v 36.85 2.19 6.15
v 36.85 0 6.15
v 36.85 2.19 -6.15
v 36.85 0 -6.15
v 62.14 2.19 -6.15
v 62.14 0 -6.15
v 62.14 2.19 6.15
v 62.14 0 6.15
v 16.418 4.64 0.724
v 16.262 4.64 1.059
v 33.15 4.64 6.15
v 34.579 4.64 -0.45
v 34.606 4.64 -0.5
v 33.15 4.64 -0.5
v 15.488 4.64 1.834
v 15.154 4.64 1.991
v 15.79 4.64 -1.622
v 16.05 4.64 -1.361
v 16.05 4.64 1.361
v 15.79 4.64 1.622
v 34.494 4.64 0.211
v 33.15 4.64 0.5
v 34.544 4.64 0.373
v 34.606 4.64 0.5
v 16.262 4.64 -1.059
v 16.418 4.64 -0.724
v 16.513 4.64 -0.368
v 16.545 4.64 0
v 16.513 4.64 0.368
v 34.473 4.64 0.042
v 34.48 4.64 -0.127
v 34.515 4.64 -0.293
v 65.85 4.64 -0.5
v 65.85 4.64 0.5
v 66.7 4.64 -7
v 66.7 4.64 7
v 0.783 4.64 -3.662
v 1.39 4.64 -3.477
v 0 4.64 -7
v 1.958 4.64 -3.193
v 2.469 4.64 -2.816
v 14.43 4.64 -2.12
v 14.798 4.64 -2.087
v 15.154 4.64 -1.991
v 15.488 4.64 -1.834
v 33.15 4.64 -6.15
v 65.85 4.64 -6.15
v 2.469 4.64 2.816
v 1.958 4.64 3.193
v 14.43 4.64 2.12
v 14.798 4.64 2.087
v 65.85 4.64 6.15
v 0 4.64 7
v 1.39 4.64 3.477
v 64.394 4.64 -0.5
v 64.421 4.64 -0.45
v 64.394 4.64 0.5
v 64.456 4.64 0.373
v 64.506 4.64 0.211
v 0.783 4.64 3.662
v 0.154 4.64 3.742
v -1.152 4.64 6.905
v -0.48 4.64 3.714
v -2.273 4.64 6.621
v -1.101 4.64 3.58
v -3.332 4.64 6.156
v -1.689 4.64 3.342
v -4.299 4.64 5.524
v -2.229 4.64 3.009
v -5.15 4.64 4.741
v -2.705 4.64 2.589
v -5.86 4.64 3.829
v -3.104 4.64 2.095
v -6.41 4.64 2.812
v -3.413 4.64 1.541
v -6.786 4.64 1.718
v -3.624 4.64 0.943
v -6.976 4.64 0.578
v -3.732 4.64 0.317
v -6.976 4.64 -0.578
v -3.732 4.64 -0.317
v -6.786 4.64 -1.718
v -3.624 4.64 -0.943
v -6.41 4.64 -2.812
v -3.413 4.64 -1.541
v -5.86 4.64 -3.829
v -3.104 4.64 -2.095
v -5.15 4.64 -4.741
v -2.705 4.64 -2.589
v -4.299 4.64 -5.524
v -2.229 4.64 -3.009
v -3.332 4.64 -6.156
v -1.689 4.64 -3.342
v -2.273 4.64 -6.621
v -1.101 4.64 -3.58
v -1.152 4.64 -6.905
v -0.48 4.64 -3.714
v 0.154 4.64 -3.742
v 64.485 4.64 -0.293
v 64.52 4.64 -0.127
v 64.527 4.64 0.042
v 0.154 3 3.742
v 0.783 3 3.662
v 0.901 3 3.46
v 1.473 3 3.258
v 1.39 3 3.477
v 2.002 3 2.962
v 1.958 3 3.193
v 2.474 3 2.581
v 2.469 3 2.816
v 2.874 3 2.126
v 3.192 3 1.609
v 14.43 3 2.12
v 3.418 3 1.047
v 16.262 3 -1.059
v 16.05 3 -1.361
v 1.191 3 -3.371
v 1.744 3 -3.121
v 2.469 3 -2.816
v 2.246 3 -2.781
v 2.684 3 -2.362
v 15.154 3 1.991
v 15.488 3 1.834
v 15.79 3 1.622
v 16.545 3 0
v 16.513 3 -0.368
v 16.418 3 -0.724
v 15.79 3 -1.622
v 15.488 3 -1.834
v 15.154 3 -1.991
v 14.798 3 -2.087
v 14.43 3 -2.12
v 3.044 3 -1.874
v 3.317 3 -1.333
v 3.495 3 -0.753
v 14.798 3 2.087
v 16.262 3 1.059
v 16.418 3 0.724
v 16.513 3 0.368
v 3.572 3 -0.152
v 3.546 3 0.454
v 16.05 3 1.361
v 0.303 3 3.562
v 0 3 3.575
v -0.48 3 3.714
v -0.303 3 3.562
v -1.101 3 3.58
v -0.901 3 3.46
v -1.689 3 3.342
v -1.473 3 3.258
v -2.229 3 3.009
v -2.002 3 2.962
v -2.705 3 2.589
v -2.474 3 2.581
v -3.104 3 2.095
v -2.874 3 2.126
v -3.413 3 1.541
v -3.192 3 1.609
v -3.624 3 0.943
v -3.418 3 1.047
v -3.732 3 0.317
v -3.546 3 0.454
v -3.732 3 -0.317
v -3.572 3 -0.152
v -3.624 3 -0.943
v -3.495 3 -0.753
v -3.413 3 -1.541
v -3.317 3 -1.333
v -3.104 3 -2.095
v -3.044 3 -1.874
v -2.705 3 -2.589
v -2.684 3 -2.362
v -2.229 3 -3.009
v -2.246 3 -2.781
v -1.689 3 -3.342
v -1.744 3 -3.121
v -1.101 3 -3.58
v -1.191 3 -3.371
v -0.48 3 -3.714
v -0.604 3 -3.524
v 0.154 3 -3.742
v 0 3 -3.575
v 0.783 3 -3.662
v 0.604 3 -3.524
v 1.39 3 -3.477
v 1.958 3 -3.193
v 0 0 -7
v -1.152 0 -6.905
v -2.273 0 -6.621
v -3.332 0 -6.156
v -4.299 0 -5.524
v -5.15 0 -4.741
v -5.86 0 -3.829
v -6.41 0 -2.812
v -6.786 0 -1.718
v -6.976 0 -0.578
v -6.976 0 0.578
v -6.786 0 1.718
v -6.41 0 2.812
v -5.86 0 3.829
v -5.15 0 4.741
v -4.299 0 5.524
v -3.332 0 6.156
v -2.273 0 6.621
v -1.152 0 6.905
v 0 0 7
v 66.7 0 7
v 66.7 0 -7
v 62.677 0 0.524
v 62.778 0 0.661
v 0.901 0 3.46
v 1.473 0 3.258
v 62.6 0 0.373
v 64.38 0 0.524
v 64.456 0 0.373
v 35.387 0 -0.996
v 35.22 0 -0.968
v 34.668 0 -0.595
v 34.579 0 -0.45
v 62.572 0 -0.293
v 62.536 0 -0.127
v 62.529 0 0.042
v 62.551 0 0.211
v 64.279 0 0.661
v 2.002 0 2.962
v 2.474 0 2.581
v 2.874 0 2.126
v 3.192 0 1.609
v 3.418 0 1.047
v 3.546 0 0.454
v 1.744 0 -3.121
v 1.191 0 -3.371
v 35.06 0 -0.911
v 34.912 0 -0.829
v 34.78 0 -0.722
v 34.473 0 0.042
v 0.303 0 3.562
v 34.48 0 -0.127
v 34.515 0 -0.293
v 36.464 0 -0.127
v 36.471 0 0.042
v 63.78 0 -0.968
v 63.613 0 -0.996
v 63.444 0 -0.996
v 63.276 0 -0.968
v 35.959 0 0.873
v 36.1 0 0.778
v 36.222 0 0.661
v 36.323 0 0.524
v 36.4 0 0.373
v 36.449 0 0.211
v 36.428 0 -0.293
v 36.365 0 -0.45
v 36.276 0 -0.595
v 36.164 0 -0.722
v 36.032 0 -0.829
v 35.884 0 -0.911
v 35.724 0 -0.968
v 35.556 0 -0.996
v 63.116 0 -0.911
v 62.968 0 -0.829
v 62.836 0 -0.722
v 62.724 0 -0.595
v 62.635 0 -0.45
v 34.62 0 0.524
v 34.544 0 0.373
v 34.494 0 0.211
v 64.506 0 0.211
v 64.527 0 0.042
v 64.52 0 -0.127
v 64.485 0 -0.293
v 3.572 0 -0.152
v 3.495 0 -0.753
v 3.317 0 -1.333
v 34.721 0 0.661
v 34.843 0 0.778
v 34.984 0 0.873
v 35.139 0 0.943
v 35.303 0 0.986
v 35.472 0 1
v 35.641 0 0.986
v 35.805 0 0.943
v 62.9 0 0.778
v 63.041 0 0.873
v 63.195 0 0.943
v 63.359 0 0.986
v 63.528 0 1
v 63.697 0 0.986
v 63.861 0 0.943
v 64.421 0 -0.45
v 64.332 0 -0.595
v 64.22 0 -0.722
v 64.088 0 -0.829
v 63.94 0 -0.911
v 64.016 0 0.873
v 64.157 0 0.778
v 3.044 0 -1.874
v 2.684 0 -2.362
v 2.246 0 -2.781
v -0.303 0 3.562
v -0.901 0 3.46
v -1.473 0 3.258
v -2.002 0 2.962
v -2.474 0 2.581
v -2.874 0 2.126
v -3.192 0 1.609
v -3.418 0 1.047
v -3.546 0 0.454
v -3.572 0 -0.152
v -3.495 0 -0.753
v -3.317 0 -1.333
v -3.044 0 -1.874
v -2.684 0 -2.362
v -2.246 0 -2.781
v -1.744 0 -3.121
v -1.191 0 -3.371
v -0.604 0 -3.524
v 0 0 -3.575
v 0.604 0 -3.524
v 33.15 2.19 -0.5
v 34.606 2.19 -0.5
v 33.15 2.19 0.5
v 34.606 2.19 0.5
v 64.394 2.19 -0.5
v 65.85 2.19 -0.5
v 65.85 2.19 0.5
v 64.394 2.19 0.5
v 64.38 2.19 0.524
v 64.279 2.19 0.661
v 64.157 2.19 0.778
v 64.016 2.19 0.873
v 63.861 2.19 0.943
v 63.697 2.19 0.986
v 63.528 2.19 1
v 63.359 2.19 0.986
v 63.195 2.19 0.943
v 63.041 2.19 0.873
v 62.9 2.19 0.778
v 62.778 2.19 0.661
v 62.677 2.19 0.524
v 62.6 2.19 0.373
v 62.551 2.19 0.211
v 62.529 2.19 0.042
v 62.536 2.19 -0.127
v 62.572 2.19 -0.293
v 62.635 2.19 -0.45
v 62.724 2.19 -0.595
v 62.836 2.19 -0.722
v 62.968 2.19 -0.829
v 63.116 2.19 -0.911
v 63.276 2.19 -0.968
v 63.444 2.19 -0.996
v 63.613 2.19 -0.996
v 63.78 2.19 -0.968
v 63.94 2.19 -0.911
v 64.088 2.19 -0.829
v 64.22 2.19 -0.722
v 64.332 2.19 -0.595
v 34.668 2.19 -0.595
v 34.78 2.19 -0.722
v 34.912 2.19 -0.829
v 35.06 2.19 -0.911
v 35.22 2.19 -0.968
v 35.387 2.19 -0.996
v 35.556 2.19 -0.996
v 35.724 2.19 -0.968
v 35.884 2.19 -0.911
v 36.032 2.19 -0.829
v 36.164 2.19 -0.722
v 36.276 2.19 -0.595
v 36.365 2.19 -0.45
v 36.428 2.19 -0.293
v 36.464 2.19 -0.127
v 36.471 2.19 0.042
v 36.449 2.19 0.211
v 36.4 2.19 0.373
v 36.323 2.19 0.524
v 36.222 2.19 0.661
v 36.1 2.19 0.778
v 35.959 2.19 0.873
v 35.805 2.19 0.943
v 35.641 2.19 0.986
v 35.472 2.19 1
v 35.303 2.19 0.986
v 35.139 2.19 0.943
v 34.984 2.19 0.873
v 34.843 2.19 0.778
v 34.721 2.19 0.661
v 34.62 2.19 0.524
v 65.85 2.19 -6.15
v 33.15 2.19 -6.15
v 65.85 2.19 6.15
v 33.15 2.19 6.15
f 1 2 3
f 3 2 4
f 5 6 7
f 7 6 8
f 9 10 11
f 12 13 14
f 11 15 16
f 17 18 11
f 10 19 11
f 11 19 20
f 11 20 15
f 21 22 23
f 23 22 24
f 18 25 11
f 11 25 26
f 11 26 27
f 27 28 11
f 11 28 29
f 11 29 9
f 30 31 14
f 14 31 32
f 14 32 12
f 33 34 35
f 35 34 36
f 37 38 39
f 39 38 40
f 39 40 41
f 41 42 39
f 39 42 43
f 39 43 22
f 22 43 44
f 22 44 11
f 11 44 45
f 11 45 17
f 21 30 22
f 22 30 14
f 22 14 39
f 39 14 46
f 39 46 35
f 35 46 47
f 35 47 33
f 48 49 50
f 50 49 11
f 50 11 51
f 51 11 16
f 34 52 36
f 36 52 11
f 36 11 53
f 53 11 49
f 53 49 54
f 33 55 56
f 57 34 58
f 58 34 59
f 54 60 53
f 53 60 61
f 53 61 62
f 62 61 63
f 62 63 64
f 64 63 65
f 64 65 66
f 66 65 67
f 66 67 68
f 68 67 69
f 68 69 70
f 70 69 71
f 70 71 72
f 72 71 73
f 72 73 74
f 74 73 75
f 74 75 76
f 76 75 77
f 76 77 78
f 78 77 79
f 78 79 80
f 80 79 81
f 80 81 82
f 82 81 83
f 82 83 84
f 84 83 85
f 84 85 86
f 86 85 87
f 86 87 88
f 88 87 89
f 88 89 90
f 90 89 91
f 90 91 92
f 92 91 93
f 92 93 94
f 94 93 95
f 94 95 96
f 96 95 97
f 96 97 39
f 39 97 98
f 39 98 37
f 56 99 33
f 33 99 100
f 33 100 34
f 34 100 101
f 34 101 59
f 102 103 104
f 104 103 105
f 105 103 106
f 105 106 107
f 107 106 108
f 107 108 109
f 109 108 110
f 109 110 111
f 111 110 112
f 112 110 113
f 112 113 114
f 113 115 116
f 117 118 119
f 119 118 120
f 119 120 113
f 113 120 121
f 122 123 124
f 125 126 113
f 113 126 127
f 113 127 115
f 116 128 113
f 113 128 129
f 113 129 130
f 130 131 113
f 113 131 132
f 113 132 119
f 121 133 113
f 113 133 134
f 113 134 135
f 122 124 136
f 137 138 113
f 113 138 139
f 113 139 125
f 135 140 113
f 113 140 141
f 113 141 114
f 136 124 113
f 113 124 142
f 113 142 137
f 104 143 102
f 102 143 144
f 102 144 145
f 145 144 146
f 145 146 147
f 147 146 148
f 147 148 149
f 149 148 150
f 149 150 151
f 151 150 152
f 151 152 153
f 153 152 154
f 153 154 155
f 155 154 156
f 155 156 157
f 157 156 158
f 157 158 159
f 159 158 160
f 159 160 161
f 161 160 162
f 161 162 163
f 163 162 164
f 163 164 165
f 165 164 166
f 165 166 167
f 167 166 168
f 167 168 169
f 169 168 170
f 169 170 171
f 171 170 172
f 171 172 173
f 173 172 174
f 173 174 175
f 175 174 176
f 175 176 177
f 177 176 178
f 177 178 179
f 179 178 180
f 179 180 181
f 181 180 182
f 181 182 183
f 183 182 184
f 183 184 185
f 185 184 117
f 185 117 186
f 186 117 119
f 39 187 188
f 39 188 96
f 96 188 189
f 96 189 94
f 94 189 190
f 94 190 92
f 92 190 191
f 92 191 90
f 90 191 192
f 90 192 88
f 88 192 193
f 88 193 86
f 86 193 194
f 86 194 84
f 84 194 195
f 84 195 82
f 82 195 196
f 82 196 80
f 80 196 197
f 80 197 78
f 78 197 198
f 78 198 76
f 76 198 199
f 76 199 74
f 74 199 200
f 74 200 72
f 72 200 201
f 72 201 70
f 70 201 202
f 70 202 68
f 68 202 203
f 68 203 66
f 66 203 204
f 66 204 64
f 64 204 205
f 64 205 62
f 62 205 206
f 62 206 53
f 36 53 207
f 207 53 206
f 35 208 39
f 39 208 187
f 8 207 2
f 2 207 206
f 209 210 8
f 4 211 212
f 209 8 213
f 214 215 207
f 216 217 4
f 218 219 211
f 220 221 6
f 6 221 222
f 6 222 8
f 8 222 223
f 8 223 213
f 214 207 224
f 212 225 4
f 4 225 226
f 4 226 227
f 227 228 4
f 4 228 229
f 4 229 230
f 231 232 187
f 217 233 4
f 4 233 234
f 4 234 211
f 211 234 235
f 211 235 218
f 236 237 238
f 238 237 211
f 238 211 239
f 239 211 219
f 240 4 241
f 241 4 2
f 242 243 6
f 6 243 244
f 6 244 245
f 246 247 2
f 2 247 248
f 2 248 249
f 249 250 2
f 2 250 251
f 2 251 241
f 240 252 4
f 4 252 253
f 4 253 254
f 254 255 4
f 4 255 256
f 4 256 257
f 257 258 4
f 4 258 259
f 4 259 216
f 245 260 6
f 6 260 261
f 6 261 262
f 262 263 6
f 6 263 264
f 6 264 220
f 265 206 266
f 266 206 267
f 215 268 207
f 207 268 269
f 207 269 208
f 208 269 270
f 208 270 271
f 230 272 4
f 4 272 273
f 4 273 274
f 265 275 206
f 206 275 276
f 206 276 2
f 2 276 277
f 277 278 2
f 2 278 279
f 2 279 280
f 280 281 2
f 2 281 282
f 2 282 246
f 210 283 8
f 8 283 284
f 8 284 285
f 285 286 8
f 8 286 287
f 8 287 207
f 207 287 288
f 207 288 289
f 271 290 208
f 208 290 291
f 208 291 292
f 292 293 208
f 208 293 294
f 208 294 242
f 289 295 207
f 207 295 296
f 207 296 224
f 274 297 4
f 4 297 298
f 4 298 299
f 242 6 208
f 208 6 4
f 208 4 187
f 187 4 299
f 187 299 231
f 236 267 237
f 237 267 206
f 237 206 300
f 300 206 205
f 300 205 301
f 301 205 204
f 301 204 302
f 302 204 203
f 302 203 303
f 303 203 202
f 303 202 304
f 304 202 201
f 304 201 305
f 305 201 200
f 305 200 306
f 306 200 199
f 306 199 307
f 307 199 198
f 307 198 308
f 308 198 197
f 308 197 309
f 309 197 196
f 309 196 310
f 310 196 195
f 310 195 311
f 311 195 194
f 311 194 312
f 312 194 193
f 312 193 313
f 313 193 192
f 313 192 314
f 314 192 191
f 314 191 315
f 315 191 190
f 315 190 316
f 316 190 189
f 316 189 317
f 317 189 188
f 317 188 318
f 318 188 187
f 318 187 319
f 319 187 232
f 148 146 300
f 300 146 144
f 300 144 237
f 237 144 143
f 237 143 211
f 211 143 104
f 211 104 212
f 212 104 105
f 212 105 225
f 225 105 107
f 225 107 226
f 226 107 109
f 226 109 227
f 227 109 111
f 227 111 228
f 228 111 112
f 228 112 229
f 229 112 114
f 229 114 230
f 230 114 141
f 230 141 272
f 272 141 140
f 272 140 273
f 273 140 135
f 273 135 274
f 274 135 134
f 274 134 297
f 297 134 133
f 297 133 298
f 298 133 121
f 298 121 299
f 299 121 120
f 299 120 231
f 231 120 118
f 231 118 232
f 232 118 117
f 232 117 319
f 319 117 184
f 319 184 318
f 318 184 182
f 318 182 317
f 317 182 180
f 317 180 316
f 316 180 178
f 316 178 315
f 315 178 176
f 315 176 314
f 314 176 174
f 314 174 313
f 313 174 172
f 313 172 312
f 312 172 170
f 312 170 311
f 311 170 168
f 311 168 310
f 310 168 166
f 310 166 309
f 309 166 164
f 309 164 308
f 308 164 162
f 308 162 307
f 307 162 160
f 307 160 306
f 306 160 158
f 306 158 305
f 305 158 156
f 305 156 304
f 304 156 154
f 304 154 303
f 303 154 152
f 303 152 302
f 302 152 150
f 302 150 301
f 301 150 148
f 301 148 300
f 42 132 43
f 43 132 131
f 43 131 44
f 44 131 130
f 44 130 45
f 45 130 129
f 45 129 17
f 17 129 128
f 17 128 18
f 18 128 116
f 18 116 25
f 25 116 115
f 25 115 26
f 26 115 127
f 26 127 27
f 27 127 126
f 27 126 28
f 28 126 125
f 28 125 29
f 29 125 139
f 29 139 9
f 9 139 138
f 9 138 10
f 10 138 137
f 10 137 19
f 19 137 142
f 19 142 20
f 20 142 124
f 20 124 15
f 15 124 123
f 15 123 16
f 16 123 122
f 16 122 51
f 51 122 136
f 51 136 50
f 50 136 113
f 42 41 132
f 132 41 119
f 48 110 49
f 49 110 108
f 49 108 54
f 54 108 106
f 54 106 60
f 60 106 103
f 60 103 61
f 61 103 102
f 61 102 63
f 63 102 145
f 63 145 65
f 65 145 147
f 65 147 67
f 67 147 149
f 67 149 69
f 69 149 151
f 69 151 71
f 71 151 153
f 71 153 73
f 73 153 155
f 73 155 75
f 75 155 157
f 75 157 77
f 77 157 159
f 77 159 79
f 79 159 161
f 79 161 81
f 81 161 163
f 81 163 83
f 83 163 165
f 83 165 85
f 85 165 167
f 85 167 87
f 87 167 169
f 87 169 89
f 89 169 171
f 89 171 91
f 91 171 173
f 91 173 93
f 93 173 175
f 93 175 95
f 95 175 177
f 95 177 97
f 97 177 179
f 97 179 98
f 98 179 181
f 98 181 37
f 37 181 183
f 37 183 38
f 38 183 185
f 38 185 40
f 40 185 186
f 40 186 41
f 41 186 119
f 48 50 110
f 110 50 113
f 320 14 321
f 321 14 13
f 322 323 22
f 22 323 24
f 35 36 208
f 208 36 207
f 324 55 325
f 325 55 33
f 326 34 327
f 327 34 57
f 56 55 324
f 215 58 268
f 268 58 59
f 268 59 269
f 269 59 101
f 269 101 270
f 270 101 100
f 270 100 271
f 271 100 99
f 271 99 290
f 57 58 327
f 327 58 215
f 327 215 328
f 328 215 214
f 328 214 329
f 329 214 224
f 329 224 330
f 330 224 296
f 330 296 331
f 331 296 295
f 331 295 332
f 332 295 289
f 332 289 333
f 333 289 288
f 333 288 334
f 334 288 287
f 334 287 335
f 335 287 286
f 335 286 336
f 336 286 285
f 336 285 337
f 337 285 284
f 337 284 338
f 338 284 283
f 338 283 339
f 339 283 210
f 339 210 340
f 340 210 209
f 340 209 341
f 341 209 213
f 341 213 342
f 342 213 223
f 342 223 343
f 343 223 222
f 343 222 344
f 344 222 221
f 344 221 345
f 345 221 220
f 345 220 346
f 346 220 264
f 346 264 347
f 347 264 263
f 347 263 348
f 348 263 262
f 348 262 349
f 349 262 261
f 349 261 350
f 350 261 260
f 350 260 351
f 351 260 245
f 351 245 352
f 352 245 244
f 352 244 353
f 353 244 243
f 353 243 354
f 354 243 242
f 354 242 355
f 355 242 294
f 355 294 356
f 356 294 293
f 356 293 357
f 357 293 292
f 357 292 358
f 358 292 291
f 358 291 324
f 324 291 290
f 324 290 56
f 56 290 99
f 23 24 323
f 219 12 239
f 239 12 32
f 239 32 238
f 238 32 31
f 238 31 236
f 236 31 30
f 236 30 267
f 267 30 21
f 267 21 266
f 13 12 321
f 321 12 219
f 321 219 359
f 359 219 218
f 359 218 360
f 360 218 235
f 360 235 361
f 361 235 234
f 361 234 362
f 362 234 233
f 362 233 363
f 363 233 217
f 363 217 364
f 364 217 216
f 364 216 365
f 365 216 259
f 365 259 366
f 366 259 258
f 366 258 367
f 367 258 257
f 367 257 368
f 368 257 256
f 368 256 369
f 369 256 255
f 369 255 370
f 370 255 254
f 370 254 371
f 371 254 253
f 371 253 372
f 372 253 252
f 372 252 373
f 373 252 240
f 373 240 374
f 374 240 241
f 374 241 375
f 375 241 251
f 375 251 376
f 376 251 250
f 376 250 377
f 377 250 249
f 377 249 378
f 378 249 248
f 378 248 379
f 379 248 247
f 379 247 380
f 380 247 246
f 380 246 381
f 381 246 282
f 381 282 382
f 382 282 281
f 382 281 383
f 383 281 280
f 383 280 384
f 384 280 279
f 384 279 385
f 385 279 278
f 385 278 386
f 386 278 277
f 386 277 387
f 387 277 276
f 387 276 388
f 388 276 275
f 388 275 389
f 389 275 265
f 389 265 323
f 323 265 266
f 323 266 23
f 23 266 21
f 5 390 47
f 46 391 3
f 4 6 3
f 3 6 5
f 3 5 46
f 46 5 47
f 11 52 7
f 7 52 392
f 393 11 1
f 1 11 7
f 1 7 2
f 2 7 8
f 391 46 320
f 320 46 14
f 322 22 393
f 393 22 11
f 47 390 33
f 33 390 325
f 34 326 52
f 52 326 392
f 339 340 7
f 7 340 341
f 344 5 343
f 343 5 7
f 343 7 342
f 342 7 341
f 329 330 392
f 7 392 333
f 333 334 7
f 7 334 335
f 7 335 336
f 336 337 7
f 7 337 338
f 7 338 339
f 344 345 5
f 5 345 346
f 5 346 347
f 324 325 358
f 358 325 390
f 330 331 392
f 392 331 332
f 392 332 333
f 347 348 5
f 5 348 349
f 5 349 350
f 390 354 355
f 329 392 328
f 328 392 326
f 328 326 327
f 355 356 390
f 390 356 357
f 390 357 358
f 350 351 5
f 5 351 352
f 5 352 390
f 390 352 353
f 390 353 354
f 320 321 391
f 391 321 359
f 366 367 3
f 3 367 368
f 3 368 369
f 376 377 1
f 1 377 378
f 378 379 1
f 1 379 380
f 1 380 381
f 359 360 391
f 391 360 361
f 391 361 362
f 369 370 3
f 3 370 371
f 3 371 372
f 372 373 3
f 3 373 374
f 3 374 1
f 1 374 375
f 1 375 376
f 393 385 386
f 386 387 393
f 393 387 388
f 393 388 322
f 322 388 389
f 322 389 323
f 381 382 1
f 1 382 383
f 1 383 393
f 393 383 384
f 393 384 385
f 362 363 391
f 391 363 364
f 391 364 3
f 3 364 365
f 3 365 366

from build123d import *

# Parameters (mm, degrees)
BOSS_EXTRUDE1_DEPTH     = 3
SKETCH2_R               = 3.575
CUT_EXTRUDE1_DEPTH      = 3.95
BOSS_EXTRUDE2_DEPTH     = 1.64
SKETCH4_R               = 3.25
CUT_EXTRUDE2_DEPTH      = 63.566201739
CAVITY1_OUTLINE_R       = 3.25
CAVITY1_DEPTH           = 4.64
CAVITY1_START           = 3.19
CAVITY1_2_DEPTH         = 1.45
CUT_EXTRUDE4_DEPTH      = 63.566201739
BOSS_EXTRUDE3_START     = -4.64
BOSS_EXTRUDE3_DEPTH     = 4.64
BOSS_EXTRUDE4_DEPTH     = 4.64
BOSS_EXTRUDE5_DEPTH     = 4.64
CUT_EXTRUDE5_DEPTH      = 1.45
SKETCH7_R               = 1
CUT_EXTRUDE6_DEPTH      = 4.64
CUT_EXTRUDE7_DEPTH      = 68.226628653
CUT_EXTRUDE7_DEPTH_BACK = 68.226628653
SKETCH10_W              = 23.28963149
SKETCH10_H              = 12.3
SKETCH10_W_2            = 22.98963149
SKETCH10_H_2            = 12
CUT_EXTRUDE8_DEPTH      = 1.45
CUT_EXTRUDE9_DEPTH      = 1.45
SKETCH14_W              = 12.3
SKETCH14_H              = 3.19
CUT_EXTRUDE10_DEPTH     = 1
SKETCH15_W              = 12.3
SKETCH15_H              = 3.19
CUT_EXTRUDE11_DEPTH     = 1
CUT_EXTRUDE12_DEPTH     = 1
CUT_EXTRUDE13_DEPTH     = 1


# Read off the part's stored shape, not the designer's step: Cavity1
with BuildPart() as part:
    # Sketch1 → Boss-Extrude1 (new body)
    with BuildSketch(Plane(origin=(0, 0, 0), x_dir=(1, 0, 0), z_dir=(0, 1, 0))):
        with BuildLine():
            Line((0, 7), (55, 7))
            ThreePointArc((55, 7), (62, 0), (55, -7))
            Line((55, -7), (0, -7))
            ThreePointArc((0, -7), (-7, 0), (0, 7))
        make_face()
    extrude(amount=BOSS_EXTRUDE1_DEPTH)

    # Sketch2 → Cut-Extrude1 (cut)
    with BuildSketch(Plane.XZ):
        with Locations(Location((0, 0, 0), (0, 0, 270))):
            Circle(SKETCH2_R)
    extrude(amount=-CUT_EXTRUDE1_DEPTH, mode=Mode.SUBTRACT)

    # Sketch3 → Boss-Extrude2 (add)
    with BuildSketch(Plane(origin=(0, 3, 0), x_dir=(1, 0, 0), z_dir=(0, 1, 0))):
        with BuildLine():
            Line((0, -7), (55, -7))
            ThreePointArc((55, -7), (62, 0), (55, 7))
            Line((55, 7), (0, 7))
            ThreePointArc((0, 7), (-7, 0), (0, -7))
        make_face()
        with BuildLine():
            Line((14.43004688, 2.119993993), (2.468524523, 2.816276208))
            ThreePointArc((2.468524523, 2.816276208), (-3.745, 0), (2.468524523, -2.816276208))
            Line((2.468524523, -2.816276208), (14.43004688, -2.119993993))
            ThreePointArc((14.43004688, -2.119993993), (16.545, 0), (14.43004688, 2.119993993))
        make_face(mode=Mode.SUBTRACT)
    extrude(amount=BOSS_EXTRUDE2_DEPTH)

    # Sketch4 → Cut-Extrude2 (cut, through all)
    with BuildSketch(Plane(origin=(0, 4.64, 0), x_dir=(1, 0, 0), z_dir=(0, 1, 0))):
        with Locations(Location((55, 0, 0), (0, 0, 270))):
            Circle(SKETCH4_R)
    extrude(amount=-CUT_EXTRUDE2_DEPTH, mode=Mode.SUBTRACT)

    # Cavity1 outline → Cavity1 (cut)
    with BuildSketch(Plane(origin=(0, 0, 0), x_dir=(1, 0, 0), z_dir=(0, 1, 0))):
        with BuildLine():
            Line((58.605551275, 6), (38, 6))
            Line((38, 6), (38, -6))
            Line((38, -6), (58.605551275, -6))
            ThreePointArc((58.605551275, -6), (59.949747468, -4.949747468), (61, -3.605551275))
            Line((61, -3.605551275), (61, 3.605551275))
            ThreePointArc((61, 3.605551275), (59.949747468, 4.949747468), (58.605551275, 6))
        make_face()
        with Locations((55, 0)):
            Circle(CAVITY1_OUTLINE_R, mode=Mode.SUBTRACT)
    extrude(amount=CAVITY1_DEPTH, mode=Mode.SUBTRACT)

    # Cavity1 2 outline → Cavity1 2 (cut)
    with BuildSketch(Plane(origin=(0, 0, 0), x_dir=(1, 0, 0), z_dir=(0, 1, 0)).offset(CAVITY1_START)):
        with BuildLine():
            Line((33.3, 0.5), (34.605619966, 0.5))
            ThreePointArc((34.605619966, 0.5), (36.47164537, 0), (34.605619966, -0.5))
            Line((34.605619966, -0.5), (33.3, -0.5))
            Line((33.3, -0.5), (33.3, -6))
            Line((33.3, -6), (38, -6))
            Line((38, -6), (38, 6))
            Line((38, 6), (33.3, 6))
            Line((33.3, 6), (33.3, 0.5))
        make_face()
        with BuildLine():
            ThreePointArc((61, -3.605551275), (62, 0), (61, 3.605551275))
            Line((61, 3.605551275), (61, -3.605551275))
        make_face()
    extrude(amount=CAVITY1_2_DEPTH, mode=Mode.SUBTRACT)

    # Sketch5 → Cut-Extrude4 (cut, through all)
    with BuildSketch(Plane.XZ):
        with BuildLine():
            Line((61, 3.605551275), (61, -3.605551275))
            ThreePointArc((61, -3.605551275), (62, 0), (61, 3.605551275))
        make_face()
    extrude(amount=-CUT_EXTRUDE4_DEPTH, mode=Mode.SUBTRACT)

    # Sketch6 → Boss-Extrude3 (add)
    with BuildSketch(Plane(origin=(0, 4.64, 0), x_dir=(1, 0, 0), z_dir=(0, 1, 0)).offset(BOSS_EXTRUDE3_START)):
        with BuildLine():
            Line((61, -6), (58.605551275, -6))
            ThreePointArc((58.605551275, -6), (56.870828693, -6.745368782), (55, -7))
            Line((55, -7), (66.7, -7))
            Line((66.7, -7), (66.7, 7))
            Line((66.7, 7), (55, 7))
            ThreePointArc((55, 7), (56.870828693, 6.745368782), (58.605551275, 6))
            Line((58.605551275, 6), (61, 6))
            Line((61, 6), (65.7, 6))
            Line((65.7, 6), (65.7, 0.5))
            Line((65.7, 0.5), (65.7, -0.5))
            Line((65.7, -0.5), (65.7, -6))
            Line((65.7, -6), (61, -6))
        make_face()
        with BuildLine():
            Line((58.605551275, -6), (33.3, -6))
            Line((33.3, -6), (33.3, -7))
            Line((33.3, -7), (55, -7))
            ThreePointArc((55, -7), (56.870828693, -6.745368782), (58.605551275, -6))
        make_face()
        with BuildLine():
            Line((33.3, 7), (33.3, 6))
            Line((33.3, 6), (58.605551275, 6))
            ThreePointArc((58.605551275, 6), (56.870828693, 6.745368782), (55, 7))
            Line((55, 7), (33.3, 7))
        make_face()
    extrude(amount=BOSS_EXTRUDE3_DEPTH)

    # Sketch6<3> → Boss-Extrude4 (add)
    with BuildSketch(Plane(origin=(0, 4.64, 0), x_dir=(1, 0, 0), z_dir=(0, 1, 0))):
        with BuildLine():
            Line((64.394380034, -0.5), (65.7, -0.5))
            Line((65.7, -0.5), (65.7, 0.5))
            Line((65.7, 0.5), (64.394380034, 0.5))
            ThreePointArc((64.394380034, 0.5), (62.52835463, 0), (64.394380034, -0.5))
        make_face()
    extrude(amount=-BOSS_EXTRUDE4_DEPTH)

    # Sketch6<5> → Boss-Extrude5 (add)
    with BuildSketch(Plane(origin=(0, 4.64, 0), x_dir=(1, 0, 0), z_dir=(0, 1, 0))):
        with BuildLine():
            Line((61, 6), (61, -6))
            Line((61, -6), (65.7, -6))
            Line((65.7, -6), (65.7, -0.5))
            Line((65.7, -0.5), (64.394380034, -0.5))
            ThreePointArc((64.394380034, -0.5), (62.52835463, 0), (64.394380034, 0.5))
            Line((64.394380034, 0.5), (65.7, 0.5))
            Line((65.7, 0.5), (65.7, 6))
            Line((65.7, 6), (61, 6))
        make_face()
    extrude(amount=-BOSS_EXTRUDE5_DEPTH)

    # Sketch6<6> → Cut-Extrude5 (cut)
    with BuildSketch(Plane(origin=(0, 4.64, 0), x_dir=(1, 0, 0), z_dir=(0, 1, 0))):
        with BuildLine():
            Line((61, 6), (61, -6))
            Line((61, -6), (65.7, -6))
            Line((65.7, -6), (65.7, -0.5))
            Line((65.7, -0.5), (64.394380034, -0.5))
            ThreePointArc((64.394380034, -0.5), (62.52835463, 0), (64.394380034, 0.5))
            Line((64.394380034, 0.5), (65.7, 0.5))
            Line((65.7, 0.5), (65.7, 6))
            Line((65.7, 6), (61, 6))
        make_face()
    extrude(amount=-CUT_EXTRUDE5_DEPTH, mode=Mode.SUBTRACT)

    # Sketch7 → Cut-Extrude6 (cut)
    with BuildSketch(Plane(origin=(0, 4.64, 0), x_dir=(1, 0, 0), z_dir=(0, 1, 0))):
        with Locations(Location((63.52835463, 0, 0), (0, 0, 270))):
            Circle(SKETCH7_R)
        with Locations(Location((35.47164537, 0, 0), (0, 0, 270))):
            Circle(SKETCH7_R)
    extrude(amount=-CUT_EXTRUDE6_DEPTH, mode=Mode.SUBTRACT)

    # Sketch10 → Cut-Extrude7 (cut, two sides: drawn at the far end of the back side and taken through both)
    with BuildSketch(Plane.XZ.offset(-CUT_EXTRUDE7_DEPTH_BACK)):
        with Locations((49.494815745, 0)):
            Rectangle(SKETCH10_W, SKETCH10_H)
        with Locations((49.494815745, 0)):
            Rectangle(SKETCH10_W_2, SKETCH10_H_2, mode=Mode.SUBTRACT)
    extrude(amount=CUT_EXTRUDE7_DEPTH + CUT_EXTRUDE7_DEPTH_BACK, mode=Mode.SUBTRACT)

    # Sketch11 → Cut-Extrude8 (cut)
    with BuildSketch(Plane(origin=(0, 4.64, 0), x_dir=(1, 0, 0), z_dir=(0, 1, 0))):
        Polygon((37.85, -6), (33.3, -6), (33.3, -0.5), (33.15, -0.5), (33.15, -6.15), (37.85, -6.15), align=None)
        Polygon((33.3, 0.5), (33.3, 6), (37.85, 6), (37.85, 6.15), (33.15, 6.15), (33.15, 0.5), align=None)
    extrude(amount=-CUT_EXTRUDE8_DEPTH, mode=Mode.SUBTRACT)

    # Sketch13 → Cut-Extrude9 (cut)
    with BuildSketch(Plane(origin=(0, 4.64, 0), x_dir=(1, 0, 0), z_dir=(0, 1, 0))):
        Polygon((61.13963149, -6), (65.7, -6), (65.7, -0.5), (65.85, -0.5), (65.85, -6.15), (61.13963149, -6.15), align=None)
        Polygon((61.13963149, 6), (65.7, 6), (65.7, 0.5), (65.85, 0.5), (65.85, 6.15), (61.13963149, 6.15), align=None)
    extrude(amount=-CUT_EXTRUDE9_DEPTH, mode=Mode.SUBTRACT)

    # Sketch14 → Cut-Extrude10 (cut)
    with BuildSketch(Plane(origin=(37.85, 0, 0), x_dir=(0, 0, -1), z_dir=(1, 0, 0))):
        with Locations((0, 1.595)):
            Rectangle(SKETCH14_W, SKETCH14_H)
    extrude(amount=-CUT_EXTRUDE10_DEPTH, mode=Mode.SUBTRACT)

    # Sketch15 → Cut-Extrude11 (cut)
    with BuildSketch(Plane.ZY.offset(-61.13963149)):
        with Locations((0, 1.595)):
            Rectangle(SKETCH15_W, SKETCH15_H)
    extrude(amount=-CUT_EXTRUDE11_DEPTH, mode=Mode.SUBTRACT)

    # Sketch16 → Cut-Extrude12 (cut)
    with BuildSketch(Plane(origin=(0, 3.19, 0), x_dir=(1, 0, 0), z_dir=(0, 1, 0))):
        with BuildLine():
            Line((62.13963149, 6.15), (62.13963149, -6.15))
            Line((62.13963149, -6.15), (65.85, -6.15))
            Line((65.85, -6.15), (65.85, -0.5))
            Line((65.85, -0.5), (64.394380034, -0.5))
            ThreePointArc((64.394380034, -0.5), (62.52835463, 0), (64.394380034, 0.5))
            Line((64.394380034, 0.5), (65.85, 0.5))
            Line((65.85, 0.5), (65.85, 6.15))
            Line((65.85, 6.15), (62.13963149, 6.15))
        make_face()
    extrude(amount=-CUT_EXTRUDE12_DEPTH, mode=Mode.SUBTRACT)

    # Sketch17 → Cut-Extrude13 (cut)
    with BuildSketch(Plane(origin=(0, 3.19, 0), x_dir=(1, 0, 0), z_dir=(0, 1, 0))):
        with BuildLine():
            Line((36.85, -6.15), (36.85, 6.15))
            Line((36.85, 6.15), (33.15, 6.15))
            Line((33.15, 6.15), (33.15, 0.5))
            Line((33.15, 0.5), (34.605619966, 0.5))
            ThreePointArc((34.605619966, 0.5), (36.47164537, 0), (34.605619966, -0.5))
            Line((34.605619966, -0.5), (33.15, -0.5))
            Line((33.15, -0.5), (33.15, -6.15))
            Line((33.15, -6.15), (36.85, -6.15))
        make_face()
    extrude(amount=-CUT_EXTRUDE13_DEPTH, mode=Mode.SUBTRACT)


solid = part.part
